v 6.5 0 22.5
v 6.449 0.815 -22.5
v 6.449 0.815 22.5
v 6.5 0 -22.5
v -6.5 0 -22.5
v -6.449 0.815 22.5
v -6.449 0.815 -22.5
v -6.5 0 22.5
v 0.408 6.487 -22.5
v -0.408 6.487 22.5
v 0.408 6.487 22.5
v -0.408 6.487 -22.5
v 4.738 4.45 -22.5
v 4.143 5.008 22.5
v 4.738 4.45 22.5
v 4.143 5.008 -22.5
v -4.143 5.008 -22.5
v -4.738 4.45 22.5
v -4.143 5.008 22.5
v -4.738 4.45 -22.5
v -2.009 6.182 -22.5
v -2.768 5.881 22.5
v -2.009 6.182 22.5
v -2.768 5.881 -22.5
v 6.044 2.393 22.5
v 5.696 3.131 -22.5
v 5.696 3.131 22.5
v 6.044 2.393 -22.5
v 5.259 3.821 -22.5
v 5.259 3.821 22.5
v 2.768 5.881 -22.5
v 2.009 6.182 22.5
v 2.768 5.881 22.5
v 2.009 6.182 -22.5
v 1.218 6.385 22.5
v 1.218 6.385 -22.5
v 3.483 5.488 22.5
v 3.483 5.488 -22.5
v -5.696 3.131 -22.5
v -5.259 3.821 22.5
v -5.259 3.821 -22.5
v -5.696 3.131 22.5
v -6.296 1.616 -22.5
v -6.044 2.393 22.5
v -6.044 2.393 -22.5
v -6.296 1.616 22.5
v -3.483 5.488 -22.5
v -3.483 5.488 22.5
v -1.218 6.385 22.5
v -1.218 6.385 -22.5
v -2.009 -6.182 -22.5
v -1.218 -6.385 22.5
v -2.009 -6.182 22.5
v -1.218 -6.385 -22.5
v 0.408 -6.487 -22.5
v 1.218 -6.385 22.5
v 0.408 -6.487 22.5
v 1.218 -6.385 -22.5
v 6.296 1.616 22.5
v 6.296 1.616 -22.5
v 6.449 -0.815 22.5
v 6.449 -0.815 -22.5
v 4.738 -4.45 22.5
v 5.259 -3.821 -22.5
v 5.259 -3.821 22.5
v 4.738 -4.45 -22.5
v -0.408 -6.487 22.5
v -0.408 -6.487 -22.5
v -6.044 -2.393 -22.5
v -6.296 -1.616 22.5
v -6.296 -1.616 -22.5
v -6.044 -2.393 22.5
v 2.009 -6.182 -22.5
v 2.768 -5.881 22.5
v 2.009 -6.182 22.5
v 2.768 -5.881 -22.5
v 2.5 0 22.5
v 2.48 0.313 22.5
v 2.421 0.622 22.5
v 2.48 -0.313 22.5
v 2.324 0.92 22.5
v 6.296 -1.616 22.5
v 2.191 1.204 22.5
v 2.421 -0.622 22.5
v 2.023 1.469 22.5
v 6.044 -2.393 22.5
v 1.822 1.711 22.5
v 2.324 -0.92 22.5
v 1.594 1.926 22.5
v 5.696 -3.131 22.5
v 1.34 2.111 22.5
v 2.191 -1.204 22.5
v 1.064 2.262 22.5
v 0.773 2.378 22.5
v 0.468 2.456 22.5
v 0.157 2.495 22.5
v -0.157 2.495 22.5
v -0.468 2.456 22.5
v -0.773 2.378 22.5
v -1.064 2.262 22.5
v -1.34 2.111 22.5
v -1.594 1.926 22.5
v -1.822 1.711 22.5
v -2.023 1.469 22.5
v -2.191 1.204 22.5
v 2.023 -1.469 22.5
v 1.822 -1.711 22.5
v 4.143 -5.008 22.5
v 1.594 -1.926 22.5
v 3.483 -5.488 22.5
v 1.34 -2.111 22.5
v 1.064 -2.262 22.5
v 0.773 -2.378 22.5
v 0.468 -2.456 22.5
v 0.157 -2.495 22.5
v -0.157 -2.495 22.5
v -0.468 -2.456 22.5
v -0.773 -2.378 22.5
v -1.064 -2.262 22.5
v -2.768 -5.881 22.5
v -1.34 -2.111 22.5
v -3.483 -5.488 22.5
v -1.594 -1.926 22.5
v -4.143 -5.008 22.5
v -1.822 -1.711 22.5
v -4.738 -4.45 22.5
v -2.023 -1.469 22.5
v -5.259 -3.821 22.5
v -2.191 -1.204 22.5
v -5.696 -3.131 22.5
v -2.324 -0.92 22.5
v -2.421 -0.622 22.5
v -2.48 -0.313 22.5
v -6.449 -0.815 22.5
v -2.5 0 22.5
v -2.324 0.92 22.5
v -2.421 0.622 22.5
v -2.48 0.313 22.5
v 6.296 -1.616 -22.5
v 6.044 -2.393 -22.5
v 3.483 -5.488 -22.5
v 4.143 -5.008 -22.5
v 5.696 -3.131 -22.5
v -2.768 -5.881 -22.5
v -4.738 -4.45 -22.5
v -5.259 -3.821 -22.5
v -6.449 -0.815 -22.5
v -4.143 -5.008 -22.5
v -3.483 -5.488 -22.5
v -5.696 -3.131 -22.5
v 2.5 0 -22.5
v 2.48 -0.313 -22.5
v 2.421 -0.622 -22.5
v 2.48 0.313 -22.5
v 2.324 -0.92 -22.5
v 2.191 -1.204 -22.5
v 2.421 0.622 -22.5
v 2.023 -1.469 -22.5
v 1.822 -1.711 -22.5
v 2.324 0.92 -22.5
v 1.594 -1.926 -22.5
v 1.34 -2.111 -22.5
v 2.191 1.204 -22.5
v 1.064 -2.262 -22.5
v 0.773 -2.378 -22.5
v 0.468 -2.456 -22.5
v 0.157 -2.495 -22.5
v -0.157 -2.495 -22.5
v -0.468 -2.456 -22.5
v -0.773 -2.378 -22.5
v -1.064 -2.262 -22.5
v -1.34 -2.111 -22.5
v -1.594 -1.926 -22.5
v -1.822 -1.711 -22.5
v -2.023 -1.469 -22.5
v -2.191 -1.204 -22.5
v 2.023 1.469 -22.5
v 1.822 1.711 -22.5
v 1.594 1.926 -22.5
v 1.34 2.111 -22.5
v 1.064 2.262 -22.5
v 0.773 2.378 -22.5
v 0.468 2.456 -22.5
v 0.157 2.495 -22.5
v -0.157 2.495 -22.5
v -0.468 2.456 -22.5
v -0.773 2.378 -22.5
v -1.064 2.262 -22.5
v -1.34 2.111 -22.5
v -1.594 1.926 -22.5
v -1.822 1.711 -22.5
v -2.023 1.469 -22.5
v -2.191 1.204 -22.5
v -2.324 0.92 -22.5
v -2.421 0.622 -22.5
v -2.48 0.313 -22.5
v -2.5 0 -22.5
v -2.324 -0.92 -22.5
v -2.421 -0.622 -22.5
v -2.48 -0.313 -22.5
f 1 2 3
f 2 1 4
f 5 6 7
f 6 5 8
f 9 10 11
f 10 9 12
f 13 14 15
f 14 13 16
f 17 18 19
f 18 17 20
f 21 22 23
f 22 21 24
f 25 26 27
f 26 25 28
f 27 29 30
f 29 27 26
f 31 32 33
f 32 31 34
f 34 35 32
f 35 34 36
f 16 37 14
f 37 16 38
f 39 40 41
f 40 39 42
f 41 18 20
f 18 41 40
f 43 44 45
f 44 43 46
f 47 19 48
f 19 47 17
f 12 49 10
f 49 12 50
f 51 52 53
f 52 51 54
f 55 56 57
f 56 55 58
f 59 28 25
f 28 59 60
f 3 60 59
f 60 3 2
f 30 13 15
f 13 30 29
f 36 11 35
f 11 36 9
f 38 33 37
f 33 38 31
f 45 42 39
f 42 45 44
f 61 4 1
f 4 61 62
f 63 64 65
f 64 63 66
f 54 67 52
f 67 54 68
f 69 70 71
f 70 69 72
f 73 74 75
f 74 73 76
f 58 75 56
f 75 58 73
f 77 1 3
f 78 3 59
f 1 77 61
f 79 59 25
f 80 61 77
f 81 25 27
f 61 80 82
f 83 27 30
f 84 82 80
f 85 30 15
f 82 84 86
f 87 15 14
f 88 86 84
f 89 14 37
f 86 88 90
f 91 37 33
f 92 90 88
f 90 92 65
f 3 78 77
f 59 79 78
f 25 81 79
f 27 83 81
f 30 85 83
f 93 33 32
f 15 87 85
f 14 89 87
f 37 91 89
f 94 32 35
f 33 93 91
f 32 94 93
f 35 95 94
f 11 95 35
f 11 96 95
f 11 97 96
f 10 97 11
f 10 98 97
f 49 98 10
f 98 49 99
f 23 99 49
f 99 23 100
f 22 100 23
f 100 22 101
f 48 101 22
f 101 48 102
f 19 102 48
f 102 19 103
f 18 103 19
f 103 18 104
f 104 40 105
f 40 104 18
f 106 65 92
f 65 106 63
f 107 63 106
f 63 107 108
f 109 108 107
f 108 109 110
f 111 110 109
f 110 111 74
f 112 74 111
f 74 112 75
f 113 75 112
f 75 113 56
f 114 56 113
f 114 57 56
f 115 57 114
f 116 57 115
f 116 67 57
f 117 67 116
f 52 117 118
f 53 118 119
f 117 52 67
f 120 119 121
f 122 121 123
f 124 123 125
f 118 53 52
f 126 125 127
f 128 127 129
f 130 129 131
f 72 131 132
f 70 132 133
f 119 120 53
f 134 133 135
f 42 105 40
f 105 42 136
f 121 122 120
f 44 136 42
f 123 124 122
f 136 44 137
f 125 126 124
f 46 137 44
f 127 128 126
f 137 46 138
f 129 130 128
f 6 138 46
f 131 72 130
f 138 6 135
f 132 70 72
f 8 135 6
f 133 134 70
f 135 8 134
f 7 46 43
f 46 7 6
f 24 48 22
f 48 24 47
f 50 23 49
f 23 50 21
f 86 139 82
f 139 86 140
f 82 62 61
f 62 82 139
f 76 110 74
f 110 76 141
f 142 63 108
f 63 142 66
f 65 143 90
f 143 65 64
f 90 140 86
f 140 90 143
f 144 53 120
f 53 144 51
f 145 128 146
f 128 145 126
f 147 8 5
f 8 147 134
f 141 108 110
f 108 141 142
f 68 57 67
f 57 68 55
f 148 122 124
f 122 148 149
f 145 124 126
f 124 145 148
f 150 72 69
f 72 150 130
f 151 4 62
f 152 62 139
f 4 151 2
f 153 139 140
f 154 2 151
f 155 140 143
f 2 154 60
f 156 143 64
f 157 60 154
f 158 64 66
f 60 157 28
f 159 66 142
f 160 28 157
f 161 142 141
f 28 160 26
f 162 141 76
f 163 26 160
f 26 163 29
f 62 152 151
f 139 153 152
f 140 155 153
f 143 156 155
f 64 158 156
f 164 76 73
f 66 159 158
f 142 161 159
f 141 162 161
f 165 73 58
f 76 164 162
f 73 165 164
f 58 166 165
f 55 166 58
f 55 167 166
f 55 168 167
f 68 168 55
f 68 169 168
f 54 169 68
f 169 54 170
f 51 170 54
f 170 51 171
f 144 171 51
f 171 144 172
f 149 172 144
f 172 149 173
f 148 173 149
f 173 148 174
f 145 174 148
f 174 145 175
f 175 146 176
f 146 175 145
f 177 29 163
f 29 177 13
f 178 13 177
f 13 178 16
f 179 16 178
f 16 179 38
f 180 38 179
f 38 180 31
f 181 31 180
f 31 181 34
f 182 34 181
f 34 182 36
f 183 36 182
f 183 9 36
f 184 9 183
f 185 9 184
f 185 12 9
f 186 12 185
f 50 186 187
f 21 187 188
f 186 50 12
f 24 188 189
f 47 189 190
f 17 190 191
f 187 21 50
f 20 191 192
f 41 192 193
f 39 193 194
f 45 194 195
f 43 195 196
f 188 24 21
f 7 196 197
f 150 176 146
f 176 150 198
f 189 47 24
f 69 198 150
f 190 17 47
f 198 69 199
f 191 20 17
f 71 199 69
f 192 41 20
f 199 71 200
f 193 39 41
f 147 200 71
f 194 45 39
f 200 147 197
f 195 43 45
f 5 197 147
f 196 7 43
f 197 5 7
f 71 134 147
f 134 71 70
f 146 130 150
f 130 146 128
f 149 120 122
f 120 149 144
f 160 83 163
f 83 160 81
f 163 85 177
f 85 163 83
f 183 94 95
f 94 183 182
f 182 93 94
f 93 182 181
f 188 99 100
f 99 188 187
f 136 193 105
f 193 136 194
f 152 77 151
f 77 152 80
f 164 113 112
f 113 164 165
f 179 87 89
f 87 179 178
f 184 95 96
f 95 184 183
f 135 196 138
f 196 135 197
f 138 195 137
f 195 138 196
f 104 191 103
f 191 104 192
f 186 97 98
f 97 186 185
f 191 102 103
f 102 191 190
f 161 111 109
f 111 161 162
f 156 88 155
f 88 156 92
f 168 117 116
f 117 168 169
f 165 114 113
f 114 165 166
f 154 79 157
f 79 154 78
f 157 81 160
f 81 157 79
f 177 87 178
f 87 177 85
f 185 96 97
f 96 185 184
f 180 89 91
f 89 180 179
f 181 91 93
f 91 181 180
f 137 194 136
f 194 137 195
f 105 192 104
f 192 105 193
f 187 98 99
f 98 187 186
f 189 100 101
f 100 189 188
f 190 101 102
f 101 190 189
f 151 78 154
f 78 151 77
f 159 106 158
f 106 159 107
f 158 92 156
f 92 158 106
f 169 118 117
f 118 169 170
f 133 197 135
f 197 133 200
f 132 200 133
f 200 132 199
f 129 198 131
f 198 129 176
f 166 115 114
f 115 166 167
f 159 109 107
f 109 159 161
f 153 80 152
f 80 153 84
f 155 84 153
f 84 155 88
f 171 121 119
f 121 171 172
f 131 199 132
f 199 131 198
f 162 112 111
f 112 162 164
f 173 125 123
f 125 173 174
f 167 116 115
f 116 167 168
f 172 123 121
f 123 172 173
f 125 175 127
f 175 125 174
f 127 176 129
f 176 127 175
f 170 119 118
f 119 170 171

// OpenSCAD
$fn = 50;


difference() {
	union() {
		translate(v = [0, 0, -22.5000000000]) {
			cylinder(h = 45, r = 6.5000000000);
		}
	}
	union() {
		translate(v = [0, 0, -100.0000000000]) {
			cylinder(h = 200, r = 2.5000000000);
		}
	}
}
